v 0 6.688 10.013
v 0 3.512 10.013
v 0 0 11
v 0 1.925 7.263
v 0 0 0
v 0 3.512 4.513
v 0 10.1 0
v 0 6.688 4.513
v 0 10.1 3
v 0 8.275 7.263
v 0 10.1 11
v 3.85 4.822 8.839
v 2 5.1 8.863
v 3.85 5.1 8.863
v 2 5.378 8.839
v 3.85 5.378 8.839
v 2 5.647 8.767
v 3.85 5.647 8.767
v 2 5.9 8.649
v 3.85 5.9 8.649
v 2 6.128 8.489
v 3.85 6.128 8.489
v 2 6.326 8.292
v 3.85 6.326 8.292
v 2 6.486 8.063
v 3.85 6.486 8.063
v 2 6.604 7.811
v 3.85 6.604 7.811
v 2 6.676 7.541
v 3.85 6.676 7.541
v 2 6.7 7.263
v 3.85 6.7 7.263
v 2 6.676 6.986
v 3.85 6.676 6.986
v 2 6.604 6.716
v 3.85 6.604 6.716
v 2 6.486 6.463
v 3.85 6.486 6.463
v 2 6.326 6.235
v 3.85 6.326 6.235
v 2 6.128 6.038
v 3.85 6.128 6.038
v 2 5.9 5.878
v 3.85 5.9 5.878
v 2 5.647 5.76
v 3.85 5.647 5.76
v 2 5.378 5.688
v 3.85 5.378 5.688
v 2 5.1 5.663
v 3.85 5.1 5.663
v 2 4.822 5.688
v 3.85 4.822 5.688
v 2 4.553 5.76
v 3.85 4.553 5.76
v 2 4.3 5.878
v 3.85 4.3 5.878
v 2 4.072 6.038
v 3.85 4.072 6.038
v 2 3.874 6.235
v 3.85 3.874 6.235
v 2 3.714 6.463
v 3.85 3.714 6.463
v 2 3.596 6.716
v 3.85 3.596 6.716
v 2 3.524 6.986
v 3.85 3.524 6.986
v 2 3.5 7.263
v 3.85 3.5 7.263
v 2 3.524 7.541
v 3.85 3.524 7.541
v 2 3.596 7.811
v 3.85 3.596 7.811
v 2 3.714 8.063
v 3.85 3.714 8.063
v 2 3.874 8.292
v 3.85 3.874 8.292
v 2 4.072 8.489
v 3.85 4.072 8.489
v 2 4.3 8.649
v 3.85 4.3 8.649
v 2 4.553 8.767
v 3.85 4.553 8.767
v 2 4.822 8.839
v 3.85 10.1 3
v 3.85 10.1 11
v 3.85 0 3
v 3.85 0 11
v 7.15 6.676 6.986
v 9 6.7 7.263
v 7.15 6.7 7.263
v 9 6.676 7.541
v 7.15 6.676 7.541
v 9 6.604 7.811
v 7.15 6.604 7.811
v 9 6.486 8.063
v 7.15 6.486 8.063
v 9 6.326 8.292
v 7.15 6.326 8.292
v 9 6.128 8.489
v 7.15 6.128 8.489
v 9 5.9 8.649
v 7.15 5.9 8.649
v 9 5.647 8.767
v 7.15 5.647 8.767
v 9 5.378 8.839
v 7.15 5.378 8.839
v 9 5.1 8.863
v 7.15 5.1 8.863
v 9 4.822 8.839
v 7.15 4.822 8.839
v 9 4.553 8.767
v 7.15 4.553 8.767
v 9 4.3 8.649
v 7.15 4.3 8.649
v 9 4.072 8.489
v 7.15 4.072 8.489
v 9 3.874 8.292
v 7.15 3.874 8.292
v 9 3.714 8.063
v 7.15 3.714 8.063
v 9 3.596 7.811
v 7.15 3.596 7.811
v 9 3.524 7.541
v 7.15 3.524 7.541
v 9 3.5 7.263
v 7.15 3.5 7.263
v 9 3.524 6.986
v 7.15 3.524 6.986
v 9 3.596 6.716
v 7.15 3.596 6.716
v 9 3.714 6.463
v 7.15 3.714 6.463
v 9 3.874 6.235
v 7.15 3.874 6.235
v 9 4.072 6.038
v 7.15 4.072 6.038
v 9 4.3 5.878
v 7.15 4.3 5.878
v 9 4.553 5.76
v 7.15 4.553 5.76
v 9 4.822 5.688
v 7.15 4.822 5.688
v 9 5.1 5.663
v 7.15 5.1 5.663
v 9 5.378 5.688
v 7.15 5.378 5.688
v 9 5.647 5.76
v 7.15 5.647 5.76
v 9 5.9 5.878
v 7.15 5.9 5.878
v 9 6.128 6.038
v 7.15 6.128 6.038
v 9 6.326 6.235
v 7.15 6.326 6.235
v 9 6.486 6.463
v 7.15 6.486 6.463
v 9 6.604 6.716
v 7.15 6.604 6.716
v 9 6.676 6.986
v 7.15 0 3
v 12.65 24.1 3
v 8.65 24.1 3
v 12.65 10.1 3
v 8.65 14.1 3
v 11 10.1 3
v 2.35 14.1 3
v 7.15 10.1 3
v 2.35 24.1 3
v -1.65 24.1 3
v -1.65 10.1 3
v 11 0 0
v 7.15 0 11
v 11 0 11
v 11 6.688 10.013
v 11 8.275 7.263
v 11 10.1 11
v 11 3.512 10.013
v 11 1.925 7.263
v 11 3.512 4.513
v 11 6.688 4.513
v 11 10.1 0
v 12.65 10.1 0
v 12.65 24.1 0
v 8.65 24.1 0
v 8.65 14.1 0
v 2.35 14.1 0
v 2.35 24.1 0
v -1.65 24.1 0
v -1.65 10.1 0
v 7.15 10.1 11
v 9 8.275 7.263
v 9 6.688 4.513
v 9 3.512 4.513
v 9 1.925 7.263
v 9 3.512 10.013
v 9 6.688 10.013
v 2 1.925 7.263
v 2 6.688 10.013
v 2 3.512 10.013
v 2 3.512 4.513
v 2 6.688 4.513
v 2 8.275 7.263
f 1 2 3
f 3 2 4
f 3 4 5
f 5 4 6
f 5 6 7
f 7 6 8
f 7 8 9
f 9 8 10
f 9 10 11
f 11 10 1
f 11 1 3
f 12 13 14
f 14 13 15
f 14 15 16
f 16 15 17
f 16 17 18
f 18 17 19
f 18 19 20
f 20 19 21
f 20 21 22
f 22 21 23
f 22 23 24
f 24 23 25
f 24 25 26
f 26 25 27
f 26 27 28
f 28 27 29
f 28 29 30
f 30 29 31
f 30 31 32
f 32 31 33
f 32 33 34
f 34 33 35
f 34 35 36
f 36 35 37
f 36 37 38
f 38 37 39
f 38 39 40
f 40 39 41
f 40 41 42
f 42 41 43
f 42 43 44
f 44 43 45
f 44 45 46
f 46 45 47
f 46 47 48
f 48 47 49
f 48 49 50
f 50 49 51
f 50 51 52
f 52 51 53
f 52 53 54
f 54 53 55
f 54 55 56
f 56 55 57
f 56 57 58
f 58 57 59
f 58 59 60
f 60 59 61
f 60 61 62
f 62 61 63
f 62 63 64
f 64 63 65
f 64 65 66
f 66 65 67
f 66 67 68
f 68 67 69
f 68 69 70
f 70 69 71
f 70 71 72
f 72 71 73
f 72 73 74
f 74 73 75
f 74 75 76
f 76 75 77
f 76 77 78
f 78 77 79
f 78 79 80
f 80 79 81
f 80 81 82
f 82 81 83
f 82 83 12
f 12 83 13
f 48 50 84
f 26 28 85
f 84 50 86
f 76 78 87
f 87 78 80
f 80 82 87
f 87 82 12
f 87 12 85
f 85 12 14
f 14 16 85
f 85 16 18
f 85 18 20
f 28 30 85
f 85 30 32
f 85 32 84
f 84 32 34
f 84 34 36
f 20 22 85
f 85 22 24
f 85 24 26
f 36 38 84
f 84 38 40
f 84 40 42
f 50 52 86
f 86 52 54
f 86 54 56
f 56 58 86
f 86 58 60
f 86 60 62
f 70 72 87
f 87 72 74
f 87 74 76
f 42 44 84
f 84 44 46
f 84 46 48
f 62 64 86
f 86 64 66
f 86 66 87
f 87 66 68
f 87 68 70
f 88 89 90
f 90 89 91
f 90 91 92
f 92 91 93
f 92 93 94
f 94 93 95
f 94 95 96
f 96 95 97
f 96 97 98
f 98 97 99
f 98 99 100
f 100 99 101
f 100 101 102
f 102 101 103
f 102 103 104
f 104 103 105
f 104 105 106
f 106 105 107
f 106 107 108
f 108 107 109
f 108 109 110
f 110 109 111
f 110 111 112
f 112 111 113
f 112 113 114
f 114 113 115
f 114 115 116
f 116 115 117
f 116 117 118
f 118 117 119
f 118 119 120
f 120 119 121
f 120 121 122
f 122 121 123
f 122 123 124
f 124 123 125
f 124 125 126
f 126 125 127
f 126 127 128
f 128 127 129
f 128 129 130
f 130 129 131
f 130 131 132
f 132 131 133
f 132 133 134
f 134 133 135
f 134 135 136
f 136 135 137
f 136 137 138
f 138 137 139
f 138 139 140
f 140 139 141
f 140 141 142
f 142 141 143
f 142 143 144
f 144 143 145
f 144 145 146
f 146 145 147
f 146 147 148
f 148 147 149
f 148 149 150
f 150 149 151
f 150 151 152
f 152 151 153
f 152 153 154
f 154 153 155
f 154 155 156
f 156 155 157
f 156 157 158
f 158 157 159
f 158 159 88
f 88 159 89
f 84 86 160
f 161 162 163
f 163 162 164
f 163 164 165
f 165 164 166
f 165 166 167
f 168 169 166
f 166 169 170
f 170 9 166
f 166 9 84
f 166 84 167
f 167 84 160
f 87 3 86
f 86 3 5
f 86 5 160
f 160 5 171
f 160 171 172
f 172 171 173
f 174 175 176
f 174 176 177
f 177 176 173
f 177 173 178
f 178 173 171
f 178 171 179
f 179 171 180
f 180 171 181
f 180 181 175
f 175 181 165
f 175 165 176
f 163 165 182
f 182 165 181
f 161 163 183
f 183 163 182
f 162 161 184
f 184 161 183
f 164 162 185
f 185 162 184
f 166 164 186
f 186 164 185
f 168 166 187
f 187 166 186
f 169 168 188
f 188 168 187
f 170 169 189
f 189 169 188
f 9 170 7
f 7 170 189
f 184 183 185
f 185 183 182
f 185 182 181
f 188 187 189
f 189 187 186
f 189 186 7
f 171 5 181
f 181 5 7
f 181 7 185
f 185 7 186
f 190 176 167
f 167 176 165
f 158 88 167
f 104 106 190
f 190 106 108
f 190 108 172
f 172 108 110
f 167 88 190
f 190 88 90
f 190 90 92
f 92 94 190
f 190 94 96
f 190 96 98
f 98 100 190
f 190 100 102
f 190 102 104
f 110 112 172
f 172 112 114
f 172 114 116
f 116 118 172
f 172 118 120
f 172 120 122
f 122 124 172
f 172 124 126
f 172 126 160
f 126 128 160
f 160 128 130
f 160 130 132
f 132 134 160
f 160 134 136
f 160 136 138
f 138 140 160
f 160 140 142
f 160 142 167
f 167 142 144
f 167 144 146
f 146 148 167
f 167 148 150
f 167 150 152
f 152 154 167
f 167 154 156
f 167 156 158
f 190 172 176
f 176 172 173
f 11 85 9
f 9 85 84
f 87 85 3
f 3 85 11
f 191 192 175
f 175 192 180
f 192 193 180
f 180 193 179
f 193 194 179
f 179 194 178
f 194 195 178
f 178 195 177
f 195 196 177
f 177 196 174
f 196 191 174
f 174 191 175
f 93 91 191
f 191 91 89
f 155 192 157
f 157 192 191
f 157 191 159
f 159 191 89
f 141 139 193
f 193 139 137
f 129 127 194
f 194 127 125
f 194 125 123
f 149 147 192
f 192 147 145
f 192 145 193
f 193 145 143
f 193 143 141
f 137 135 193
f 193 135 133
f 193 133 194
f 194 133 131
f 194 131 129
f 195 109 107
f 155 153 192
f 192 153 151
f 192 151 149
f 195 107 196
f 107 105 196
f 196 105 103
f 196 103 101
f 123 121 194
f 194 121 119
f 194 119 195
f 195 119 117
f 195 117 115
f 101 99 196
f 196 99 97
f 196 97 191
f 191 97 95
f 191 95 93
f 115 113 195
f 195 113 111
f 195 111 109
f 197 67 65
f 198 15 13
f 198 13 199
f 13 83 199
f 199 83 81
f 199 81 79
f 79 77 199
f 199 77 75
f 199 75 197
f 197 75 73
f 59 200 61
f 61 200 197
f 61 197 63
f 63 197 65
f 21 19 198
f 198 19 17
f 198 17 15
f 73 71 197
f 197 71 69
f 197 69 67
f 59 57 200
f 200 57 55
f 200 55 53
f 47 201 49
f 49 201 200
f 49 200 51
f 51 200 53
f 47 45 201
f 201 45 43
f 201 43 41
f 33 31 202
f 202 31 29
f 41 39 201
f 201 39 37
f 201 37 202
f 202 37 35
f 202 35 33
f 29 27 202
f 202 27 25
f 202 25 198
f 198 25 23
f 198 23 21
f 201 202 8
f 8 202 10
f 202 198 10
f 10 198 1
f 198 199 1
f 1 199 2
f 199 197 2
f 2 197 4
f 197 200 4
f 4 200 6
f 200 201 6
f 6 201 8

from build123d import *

# Parameters (mm, degrees)
BOSS_EXTRUDE1_DEPTH = 3
SKETCH5_W           = 3.85
SKETCH5_H           = 10.1
BOSS_EXTRUDE3_DEPTH = 8
CUT_EXTRUDE4_REACH  = 31.357
SKETCH6_R           = 1.6
SKETCH6_3_R         = 1.6
CUT_EXTRUDE5_DEPTH  = 2


with BuildPart() as part:
    # Sketch1 → Boss-Extrude1 (new body)
    with BuildSketch(Plane.XY):
        Polygon((0, 10), (0, 0), (11, 0), (11, 10), (11, 10.1), (12.65, 10.1), (12.65, 24.1), (8.65, 24.1), (8.65, 14.1), (2.35, 14.1), (2.35, 24.1), (-1.65, 24.1), (-1.65, 10.1), (0, 10.1), align=None)
    extrude(amount=BOSS_EXTRUDE1_DEPTH)

    # Sketch5 → Boss-Extrude3 (add)
    with BuildSketch(Plane.XY.offset(3)):
        with Locations((9.075, 5.05)):
            Rectangle(SKETCH5_W, SKETCH5_H)
        with Locations((1.925, 5.05)):
            Rectangle(SKETCH5_W, SKETCH5_H)
    extrude(amount=BOSS_EXTRUDE3_DEPTH)

    # Sketch6 → Cut-Extrude4 (cut, up to next)
    with BuildSketch(Plane(origin=(11, 0, 0), x_dir=(0, 0, -1), z_dir=(1, 0, 0)), mode=Mode.PRIVATE) as cut_extrude4_sk1:
        with Locations((-7.263468762, 5.1)):
            Circle(SKETCH6_R)
    cut_extrude4_tool1 = extrude(cut_extrude4_sk1.sketch, amount=-CUT_EXTRUDE4_REACH, mode=Mode.PRIVATE) & part.part
    cut_extrude4 = cut_extrude4_tool1.solids().sort_by_distance((11, 5.1, 7.263469))[0]
    add(cut_extrude4, mode=Mode.SUBTRACT)

    # Sketch6<3> → Cut-Extrude5 (cut)
    with BuildSketch(Plane(origin=(11, 0, 0), x_dir=(0, 0, -1), z_dir=(1, 0, 0))):
        Polygon((-7.263468762, 8.275426481), (-10.013468762, 6.68771324), (-10.013468762, 3.51228676), (-7.263468762, 1.924573519), (-4.513468762, 3.51228676), (-4.513468762, 6.68771324), align=None)
        with Locations((-7.263468762, 5.1)):
            Circle(SKETCH6_3_R, mode=Mode.SUBTRACT)
    cut_extrude5 = extrude(amount=-CUT_EXTRUDE5_DEPTH, mode=Mode.SUBTRACT)

    # Mirror2: Cut-Extrude4, Cut-Extrude5 across plane
    add(cut_extrude4.mirror(Plane(origin=(5.5, 0, 0), x_dir=(0, 0, 1), z_dir=(1, 0, 0))), mode=Mode.SUBTRACT)
    add(cut_extrude5.mirror(Plane(origin=(5.5, 0, 0), x_dir=(0, 0, 1), z_dir=(1, 0, 0))), mode=Mode.SUBTRACT)


solid = part.part
